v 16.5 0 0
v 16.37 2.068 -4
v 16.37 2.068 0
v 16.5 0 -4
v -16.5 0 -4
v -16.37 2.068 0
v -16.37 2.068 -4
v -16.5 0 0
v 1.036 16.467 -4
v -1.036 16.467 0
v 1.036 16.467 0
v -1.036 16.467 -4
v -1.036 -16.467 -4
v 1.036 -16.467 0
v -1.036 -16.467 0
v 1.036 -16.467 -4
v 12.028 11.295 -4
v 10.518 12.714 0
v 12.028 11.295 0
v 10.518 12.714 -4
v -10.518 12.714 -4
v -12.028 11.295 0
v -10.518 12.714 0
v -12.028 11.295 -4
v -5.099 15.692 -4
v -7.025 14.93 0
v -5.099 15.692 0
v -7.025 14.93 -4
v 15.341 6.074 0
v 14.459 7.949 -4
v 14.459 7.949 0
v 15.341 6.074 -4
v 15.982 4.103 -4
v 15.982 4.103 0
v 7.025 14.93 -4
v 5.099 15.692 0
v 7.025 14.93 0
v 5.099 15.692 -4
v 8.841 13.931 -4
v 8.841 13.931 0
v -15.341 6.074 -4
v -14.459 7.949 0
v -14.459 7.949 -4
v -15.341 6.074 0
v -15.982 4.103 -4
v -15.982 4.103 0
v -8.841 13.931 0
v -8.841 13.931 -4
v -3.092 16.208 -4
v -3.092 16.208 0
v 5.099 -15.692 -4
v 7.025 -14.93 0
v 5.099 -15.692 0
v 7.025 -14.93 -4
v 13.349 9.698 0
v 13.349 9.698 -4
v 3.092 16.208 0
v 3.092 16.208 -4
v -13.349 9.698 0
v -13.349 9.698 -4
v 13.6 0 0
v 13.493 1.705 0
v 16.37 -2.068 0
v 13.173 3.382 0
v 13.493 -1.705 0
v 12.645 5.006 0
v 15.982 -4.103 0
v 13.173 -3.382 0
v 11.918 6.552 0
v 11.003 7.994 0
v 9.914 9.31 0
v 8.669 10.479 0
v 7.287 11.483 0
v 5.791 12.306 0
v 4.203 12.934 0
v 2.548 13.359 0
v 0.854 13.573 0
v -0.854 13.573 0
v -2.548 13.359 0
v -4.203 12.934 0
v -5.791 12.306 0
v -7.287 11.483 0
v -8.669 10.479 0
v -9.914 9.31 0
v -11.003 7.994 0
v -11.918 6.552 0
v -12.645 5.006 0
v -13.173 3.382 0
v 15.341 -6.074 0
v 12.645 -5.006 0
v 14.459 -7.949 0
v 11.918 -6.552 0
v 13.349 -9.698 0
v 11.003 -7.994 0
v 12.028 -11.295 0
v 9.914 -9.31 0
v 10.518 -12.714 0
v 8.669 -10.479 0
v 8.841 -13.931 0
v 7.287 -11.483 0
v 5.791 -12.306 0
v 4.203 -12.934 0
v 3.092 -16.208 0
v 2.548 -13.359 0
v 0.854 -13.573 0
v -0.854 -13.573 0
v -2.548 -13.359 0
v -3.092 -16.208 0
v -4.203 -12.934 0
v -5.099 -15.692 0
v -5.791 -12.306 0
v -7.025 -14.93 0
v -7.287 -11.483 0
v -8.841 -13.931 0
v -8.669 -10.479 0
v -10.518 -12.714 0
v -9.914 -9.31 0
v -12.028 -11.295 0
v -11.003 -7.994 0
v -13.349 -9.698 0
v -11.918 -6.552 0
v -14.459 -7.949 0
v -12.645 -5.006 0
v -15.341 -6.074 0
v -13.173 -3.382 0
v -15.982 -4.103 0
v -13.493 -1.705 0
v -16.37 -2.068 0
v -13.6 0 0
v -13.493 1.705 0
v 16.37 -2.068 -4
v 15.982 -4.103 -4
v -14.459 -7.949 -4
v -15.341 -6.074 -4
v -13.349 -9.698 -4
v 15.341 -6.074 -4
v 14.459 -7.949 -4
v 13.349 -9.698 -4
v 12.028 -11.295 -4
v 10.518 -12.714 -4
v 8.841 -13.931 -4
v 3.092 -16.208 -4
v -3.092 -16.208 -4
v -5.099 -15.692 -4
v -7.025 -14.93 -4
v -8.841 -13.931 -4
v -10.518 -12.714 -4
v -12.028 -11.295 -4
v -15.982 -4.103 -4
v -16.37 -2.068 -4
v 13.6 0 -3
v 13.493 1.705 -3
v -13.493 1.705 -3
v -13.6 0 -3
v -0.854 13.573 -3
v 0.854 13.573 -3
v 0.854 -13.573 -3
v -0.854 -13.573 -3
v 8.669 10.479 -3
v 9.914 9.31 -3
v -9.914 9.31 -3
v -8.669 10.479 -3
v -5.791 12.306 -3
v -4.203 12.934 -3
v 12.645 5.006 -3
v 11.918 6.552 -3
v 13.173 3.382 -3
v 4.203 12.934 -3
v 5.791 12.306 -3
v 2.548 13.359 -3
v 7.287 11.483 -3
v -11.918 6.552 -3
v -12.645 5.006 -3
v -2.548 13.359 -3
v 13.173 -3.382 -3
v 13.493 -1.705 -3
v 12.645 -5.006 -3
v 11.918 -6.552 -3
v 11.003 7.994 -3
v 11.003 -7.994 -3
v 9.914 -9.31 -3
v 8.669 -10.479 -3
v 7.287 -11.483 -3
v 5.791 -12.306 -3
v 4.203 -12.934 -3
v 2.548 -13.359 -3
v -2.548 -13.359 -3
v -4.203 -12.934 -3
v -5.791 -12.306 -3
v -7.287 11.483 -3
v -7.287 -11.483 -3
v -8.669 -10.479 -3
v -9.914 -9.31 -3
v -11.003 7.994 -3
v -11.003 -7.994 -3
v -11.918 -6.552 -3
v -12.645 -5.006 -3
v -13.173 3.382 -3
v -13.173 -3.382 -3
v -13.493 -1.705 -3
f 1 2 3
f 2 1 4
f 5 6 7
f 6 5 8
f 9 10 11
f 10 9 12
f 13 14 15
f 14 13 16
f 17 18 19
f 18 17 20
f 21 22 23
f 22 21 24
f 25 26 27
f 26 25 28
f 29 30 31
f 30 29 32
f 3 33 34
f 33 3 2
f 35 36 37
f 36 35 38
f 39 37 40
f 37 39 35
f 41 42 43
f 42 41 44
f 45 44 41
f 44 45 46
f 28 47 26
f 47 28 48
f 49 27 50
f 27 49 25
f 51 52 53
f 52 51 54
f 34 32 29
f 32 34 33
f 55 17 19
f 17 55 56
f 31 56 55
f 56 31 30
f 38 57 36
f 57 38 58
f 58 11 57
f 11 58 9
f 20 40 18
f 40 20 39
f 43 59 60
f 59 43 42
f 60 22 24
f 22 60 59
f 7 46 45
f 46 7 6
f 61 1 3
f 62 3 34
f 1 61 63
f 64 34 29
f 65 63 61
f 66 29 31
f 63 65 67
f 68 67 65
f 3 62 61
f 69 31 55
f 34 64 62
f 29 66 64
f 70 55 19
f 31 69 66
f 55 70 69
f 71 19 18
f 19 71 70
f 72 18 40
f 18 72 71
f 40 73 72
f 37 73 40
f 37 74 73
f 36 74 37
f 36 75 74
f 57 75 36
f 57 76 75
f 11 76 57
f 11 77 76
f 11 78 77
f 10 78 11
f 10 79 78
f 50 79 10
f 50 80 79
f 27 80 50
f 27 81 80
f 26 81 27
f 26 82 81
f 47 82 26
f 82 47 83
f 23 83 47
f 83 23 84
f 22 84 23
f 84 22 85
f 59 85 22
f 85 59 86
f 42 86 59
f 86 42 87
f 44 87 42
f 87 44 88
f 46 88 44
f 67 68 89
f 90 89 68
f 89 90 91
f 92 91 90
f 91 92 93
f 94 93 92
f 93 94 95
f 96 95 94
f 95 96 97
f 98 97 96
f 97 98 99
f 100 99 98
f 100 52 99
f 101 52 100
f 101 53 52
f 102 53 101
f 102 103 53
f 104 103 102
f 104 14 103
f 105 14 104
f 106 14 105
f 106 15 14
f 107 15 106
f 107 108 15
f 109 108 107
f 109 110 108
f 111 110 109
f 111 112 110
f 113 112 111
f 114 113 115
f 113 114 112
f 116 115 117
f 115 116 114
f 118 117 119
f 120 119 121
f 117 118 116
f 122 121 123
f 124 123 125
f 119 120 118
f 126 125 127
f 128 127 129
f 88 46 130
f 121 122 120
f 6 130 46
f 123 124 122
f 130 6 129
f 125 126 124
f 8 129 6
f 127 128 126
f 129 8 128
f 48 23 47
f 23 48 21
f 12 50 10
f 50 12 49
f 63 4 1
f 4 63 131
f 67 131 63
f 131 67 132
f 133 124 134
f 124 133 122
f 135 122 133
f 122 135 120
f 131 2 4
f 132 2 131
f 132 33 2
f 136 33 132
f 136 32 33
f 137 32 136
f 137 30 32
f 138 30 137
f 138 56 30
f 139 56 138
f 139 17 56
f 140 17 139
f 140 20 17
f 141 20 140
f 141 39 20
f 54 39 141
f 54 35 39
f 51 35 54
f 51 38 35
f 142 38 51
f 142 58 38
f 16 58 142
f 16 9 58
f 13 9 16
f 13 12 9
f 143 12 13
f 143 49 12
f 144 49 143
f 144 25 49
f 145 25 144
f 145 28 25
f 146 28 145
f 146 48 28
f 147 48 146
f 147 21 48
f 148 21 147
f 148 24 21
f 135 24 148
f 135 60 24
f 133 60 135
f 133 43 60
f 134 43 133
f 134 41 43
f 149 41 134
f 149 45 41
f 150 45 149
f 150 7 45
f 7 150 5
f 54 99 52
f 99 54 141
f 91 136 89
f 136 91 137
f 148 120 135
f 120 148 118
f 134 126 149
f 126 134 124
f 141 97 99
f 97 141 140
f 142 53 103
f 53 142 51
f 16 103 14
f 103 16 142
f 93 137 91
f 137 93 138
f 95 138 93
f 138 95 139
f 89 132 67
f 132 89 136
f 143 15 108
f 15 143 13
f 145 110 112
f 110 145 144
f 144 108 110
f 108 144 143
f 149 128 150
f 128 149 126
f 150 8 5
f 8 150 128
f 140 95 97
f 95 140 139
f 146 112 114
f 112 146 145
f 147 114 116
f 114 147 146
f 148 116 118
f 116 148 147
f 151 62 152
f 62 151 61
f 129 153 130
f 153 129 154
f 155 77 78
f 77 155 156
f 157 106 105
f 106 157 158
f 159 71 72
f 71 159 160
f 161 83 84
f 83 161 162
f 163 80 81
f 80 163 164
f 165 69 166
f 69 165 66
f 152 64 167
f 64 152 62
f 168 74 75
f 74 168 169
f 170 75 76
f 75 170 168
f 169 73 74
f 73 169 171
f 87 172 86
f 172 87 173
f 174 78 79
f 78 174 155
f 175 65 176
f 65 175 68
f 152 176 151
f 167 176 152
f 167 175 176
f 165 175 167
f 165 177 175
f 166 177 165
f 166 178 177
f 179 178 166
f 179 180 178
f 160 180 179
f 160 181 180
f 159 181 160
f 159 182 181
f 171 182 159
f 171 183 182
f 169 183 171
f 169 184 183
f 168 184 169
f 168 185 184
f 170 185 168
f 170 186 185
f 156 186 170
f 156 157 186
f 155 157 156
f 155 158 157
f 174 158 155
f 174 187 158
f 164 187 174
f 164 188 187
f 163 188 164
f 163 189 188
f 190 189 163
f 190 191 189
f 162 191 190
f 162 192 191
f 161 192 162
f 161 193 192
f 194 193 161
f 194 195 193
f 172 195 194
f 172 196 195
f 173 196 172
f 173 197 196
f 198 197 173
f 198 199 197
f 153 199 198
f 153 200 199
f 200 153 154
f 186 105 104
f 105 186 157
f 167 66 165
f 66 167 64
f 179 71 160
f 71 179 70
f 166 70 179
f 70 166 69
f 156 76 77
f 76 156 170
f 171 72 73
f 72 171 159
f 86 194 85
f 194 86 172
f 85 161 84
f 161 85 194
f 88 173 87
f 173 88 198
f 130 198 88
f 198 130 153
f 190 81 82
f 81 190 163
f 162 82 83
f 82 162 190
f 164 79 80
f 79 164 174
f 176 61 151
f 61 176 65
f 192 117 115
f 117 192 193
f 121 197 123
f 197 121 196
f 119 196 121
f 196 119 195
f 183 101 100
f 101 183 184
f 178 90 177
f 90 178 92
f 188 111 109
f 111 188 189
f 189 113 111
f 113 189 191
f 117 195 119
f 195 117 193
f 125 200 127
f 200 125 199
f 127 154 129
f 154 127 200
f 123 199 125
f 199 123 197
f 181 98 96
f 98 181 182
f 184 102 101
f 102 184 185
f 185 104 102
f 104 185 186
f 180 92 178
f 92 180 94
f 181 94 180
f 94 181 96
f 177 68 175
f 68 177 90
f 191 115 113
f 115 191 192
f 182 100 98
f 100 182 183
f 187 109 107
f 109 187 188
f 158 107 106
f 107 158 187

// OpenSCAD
$fn = 50;


difference() {
	union() {
		translate(v = [0, 0, -4.0000000000]) {
			cylinder(h = 4, r = 16.5000000000);
		}
	}
	union() {
		#translate(v = [0, 0, -3.0000000000]) {
			cylinder(h = 3, r = 13.6000000000);
		}
	}
}
